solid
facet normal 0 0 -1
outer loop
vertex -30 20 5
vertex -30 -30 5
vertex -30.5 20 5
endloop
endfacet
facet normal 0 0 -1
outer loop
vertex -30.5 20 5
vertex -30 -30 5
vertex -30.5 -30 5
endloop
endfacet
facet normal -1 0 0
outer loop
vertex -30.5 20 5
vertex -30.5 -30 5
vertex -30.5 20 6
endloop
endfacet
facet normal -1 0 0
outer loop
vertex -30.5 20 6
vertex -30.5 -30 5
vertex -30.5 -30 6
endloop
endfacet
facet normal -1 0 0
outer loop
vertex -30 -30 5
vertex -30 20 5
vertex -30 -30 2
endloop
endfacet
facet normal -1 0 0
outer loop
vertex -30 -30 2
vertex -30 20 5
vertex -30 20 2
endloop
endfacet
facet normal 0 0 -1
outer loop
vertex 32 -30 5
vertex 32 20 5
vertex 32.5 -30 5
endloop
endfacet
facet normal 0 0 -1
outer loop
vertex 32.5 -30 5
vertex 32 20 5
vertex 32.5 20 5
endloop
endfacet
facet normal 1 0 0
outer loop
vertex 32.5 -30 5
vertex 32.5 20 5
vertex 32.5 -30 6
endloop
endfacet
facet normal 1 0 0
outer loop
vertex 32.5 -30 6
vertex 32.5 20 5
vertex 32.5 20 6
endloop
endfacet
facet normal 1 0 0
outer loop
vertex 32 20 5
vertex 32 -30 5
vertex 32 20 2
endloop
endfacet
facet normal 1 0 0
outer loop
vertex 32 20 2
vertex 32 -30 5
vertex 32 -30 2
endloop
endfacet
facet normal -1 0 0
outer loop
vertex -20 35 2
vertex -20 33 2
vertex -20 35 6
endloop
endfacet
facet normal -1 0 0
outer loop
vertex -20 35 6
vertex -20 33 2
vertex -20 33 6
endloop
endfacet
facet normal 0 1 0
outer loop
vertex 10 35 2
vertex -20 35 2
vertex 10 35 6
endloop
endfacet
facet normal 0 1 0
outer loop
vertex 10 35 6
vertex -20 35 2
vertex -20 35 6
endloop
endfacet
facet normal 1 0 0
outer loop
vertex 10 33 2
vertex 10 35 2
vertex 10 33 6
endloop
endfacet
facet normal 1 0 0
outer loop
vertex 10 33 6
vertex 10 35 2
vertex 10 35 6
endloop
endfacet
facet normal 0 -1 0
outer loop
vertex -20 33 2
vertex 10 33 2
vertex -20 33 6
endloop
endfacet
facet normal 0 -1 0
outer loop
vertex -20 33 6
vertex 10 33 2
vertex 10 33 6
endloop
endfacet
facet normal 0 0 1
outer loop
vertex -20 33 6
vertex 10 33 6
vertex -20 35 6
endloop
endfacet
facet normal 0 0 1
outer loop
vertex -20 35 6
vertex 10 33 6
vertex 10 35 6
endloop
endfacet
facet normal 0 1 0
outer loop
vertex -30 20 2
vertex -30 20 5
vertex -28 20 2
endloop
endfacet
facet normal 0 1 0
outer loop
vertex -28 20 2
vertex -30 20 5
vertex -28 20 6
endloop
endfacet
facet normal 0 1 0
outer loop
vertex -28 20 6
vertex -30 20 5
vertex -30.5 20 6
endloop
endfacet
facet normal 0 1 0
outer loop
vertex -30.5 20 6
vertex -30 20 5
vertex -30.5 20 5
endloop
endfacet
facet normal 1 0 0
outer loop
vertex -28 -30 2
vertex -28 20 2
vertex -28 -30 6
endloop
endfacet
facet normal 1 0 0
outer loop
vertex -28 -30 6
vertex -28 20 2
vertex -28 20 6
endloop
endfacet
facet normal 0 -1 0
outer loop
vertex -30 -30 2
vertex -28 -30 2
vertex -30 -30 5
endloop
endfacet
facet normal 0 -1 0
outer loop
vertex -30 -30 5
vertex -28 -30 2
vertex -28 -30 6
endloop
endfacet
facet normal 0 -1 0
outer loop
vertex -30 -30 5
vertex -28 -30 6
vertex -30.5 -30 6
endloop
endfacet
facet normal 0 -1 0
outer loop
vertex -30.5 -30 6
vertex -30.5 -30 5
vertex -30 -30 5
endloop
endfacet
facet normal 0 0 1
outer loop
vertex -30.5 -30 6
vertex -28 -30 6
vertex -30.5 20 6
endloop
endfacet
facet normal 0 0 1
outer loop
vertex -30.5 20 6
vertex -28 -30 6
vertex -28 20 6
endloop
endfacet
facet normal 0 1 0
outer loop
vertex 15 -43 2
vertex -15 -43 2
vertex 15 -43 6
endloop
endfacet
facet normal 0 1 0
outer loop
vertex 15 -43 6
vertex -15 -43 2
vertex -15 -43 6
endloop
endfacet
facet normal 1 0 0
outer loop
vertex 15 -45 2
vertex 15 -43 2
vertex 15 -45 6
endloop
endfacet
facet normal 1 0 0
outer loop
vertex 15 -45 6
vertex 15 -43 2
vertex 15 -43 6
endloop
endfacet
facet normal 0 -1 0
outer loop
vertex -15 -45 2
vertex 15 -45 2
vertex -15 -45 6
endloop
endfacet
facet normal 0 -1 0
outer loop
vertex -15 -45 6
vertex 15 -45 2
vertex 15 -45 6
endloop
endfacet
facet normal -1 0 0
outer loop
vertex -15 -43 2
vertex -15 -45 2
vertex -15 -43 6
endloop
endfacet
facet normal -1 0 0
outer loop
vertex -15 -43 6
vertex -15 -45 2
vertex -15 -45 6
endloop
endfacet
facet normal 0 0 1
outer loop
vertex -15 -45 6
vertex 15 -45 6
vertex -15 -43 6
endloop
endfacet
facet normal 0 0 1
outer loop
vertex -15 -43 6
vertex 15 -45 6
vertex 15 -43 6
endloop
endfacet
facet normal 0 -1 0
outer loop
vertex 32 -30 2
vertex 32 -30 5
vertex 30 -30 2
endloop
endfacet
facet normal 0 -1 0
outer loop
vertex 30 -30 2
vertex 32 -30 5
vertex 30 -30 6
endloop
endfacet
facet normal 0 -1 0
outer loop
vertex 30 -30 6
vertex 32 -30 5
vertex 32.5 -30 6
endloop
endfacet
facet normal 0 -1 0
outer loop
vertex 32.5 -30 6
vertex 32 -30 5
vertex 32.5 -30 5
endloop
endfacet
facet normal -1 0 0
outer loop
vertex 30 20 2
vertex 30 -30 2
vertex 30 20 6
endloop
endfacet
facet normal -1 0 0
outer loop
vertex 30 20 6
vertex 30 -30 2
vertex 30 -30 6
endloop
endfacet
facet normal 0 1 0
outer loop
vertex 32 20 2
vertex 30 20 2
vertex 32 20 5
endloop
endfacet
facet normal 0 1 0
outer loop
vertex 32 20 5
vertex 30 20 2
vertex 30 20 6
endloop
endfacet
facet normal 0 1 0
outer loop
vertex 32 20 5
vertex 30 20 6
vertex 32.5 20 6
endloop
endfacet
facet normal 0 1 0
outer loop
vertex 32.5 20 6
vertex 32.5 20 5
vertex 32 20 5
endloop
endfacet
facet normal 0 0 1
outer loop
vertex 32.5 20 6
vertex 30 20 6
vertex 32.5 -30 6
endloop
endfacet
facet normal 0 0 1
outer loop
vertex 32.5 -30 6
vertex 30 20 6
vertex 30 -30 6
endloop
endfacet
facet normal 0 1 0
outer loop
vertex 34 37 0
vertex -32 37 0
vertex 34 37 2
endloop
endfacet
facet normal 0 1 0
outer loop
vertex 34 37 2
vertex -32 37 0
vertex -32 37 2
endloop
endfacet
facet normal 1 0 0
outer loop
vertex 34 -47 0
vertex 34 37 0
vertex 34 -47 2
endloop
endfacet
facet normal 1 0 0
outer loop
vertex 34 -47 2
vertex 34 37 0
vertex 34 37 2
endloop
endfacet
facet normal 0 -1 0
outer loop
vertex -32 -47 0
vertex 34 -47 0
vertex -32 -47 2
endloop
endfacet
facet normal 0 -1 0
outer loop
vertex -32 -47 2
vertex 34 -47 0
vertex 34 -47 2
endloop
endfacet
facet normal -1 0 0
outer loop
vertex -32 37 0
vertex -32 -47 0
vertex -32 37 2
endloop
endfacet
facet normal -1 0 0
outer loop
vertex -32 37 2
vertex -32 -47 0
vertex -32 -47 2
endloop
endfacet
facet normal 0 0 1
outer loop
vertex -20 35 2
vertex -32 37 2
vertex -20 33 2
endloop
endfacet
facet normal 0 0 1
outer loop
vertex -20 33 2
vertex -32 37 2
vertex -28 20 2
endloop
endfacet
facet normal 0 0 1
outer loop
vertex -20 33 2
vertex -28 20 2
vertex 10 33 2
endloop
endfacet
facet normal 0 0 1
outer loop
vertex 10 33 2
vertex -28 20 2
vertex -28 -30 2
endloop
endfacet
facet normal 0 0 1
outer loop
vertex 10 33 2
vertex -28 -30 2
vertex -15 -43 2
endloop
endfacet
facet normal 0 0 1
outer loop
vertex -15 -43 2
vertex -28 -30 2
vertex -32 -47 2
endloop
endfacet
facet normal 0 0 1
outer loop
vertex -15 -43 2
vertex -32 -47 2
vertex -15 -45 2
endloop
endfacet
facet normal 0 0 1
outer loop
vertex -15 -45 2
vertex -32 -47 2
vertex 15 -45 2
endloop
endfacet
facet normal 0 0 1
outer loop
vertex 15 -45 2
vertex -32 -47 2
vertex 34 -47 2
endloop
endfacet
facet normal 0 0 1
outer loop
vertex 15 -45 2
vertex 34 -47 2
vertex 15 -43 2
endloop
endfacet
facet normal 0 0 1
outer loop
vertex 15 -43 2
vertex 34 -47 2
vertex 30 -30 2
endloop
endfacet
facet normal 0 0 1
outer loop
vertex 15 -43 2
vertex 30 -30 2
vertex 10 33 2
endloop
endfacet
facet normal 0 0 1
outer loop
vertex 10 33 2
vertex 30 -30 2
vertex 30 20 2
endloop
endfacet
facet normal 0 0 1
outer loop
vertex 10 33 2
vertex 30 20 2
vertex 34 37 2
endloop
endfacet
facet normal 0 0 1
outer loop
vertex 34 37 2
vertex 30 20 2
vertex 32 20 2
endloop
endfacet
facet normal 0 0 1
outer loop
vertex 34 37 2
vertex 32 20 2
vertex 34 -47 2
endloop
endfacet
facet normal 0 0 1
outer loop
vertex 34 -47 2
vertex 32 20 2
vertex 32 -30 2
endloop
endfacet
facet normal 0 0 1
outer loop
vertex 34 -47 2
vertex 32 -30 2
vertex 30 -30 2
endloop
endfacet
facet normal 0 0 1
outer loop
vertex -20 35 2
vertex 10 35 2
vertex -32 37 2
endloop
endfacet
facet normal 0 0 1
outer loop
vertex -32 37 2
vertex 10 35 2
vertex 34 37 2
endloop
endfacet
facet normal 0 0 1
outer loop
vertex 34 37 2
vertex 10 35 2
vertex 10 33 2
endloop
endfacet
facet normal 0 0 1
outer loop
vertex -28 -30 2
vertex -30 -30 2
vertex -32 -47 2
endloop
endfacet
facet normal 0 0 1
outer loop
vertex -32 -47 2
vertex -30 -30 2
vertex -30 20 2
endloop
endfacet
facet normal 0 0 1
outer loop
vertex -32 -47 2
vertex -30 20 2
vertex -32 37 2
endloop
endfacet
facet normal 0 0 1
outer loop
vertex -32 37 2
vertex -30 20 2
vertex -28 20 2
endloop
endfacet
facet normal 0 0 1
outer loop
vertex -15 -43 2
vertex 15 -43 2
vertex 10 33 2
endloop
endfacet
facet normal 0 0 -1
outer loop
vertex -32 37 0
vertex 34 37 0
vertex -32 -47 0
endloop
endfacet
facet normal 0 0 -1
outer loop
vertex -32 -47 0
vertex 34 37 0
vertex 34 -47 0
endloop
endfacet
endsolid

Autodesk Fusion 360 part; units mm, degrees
sketch "Skizze1" plane through (0, 0, 0) normal (0, 0, 1) x (1, 0, 0)
  line L0 (-30, 35) -> (32, 35)
  line L1 (32, 35) -> (32, -45)
  line L2 (32, -45) -> (-30, -45)
  line L3 (-30, -45) -> (-30, 35)
  line L4 (34, 37) -> (34, -47)
  line L5 (34, -47) -> (-32, -47)
  line L6 (-32, -47) -> (-32, 37)
  line L7 (-32, 37) -> (34, 37)
  dimension "d1" = 62
  dimension "d2" = 80
  dimension "d3" = -2
extrude "Extrusion1" add sketch "Skizze1" along normal blind 2 contours L0 L1 L2 L3 | L4 L5 L6 L7
sketch "Skizze2" plane through (0, 0, 2) normal (0, 0, 1) x (-1, 0, 0)
  line L0 (32, -37) -> (32, 47)
  line L1 (32, 47) -> (-34, 47)
  line L2 (-34, 47) -> (-34, -37)
  line L3 (-34, -37) -> (32, -37)
  line L4 (-32, 45) -> (-32, -35)
  line L5 (-32, -35) -> (30, -35)
  line L6 (30, -35) -> (30, 45)
  line L7 (30, 45) -> (-32, 45)
  line L8 (30, -20) -> (28, -20)
  line L9 (28, -20) -> (28, 30)
  line L10 (28, 30) -> (30, 30)
  line L11 (30, 30) -> (30, -20)
  line L12 (-32, -20) -> (-30, -20)
  line L13 (-30, -20) -> (-30, 30)
  line L14 (-30, 30) -> (-32, 30)
  line L15 (-32, 30) -> (-32, -20)
  line L16 (15, 45) -> (-15, 45)
  line L17 (-15, 45) -> (-15, 43)
  line L18 (-15, 43) -> (15, 43)
  line L19 (15, 43) -> (15, 45)
  line L20 (20, -35) -> (-10, -35)
  line L21 (-10, -35) -> (-10, -33)
  line L22 (-10, -33) -> (20, -33)
  line L23 (20, -33) -> (20, -35)
  dimension "d6" = -2
  dimension "d7" = 2
  dimension "d8" = 50
  dimension "d9" = 15
  dimension "d10" = 50
  dimension "d11" = 15
  dimension "d12" = 2
  dimension "d16" = 2
  dimension "d17" = 2
  dimension "d18" = 30
  dimension "d19" = 30
  dimension "d21" = 15
  dimension "d28" = 10
extrude "Extrusion2" add sketch "Skizze2" along normal blind 4 contours L4 L12 L13 L14 L15 | L7 L16 L17 L18 L19 | L5 L20 L21 L22 L23 | L6 L8 L9 L10 L11
sketch "Skizze5" plane through (32, 0, 0) normal (1, 0, 0) x (0, 1, 0)
  line L0 (-30, 2) -> (20, 2)
  line L1 (20, 2) -> (20, 6)
  line L2 (20, 6) -> (-30, 6)
  line L3 (-30, 6) -> (-30, 2)
  line L4 (-30, 5) -> (20, 5)
  dimension "d29" = 1
extrude "Extrusion5" add sketch "Skizze5" along normal blind 0.5 contours L1 L2 L3 L4
sketch "Skizze6" plane through (-30, 0, 0) normal (-1, 0, 0) x (0, -1, 0)
  line L0 (-20, 2) -> (30, 2)
  line L1 (30, 2) -> (30, 6)
  line L2 (30, 6) -> (-20, 6)
  line L3 (-20, 6) -> (-20, 2)
  line L4 (-20, 5) -> (30, 5)
  dimension "d32" = 1
extrude "Extrusion6" add sketch "Skizze6" along normal blind 0.5 contours L1 L2 L3 L4
